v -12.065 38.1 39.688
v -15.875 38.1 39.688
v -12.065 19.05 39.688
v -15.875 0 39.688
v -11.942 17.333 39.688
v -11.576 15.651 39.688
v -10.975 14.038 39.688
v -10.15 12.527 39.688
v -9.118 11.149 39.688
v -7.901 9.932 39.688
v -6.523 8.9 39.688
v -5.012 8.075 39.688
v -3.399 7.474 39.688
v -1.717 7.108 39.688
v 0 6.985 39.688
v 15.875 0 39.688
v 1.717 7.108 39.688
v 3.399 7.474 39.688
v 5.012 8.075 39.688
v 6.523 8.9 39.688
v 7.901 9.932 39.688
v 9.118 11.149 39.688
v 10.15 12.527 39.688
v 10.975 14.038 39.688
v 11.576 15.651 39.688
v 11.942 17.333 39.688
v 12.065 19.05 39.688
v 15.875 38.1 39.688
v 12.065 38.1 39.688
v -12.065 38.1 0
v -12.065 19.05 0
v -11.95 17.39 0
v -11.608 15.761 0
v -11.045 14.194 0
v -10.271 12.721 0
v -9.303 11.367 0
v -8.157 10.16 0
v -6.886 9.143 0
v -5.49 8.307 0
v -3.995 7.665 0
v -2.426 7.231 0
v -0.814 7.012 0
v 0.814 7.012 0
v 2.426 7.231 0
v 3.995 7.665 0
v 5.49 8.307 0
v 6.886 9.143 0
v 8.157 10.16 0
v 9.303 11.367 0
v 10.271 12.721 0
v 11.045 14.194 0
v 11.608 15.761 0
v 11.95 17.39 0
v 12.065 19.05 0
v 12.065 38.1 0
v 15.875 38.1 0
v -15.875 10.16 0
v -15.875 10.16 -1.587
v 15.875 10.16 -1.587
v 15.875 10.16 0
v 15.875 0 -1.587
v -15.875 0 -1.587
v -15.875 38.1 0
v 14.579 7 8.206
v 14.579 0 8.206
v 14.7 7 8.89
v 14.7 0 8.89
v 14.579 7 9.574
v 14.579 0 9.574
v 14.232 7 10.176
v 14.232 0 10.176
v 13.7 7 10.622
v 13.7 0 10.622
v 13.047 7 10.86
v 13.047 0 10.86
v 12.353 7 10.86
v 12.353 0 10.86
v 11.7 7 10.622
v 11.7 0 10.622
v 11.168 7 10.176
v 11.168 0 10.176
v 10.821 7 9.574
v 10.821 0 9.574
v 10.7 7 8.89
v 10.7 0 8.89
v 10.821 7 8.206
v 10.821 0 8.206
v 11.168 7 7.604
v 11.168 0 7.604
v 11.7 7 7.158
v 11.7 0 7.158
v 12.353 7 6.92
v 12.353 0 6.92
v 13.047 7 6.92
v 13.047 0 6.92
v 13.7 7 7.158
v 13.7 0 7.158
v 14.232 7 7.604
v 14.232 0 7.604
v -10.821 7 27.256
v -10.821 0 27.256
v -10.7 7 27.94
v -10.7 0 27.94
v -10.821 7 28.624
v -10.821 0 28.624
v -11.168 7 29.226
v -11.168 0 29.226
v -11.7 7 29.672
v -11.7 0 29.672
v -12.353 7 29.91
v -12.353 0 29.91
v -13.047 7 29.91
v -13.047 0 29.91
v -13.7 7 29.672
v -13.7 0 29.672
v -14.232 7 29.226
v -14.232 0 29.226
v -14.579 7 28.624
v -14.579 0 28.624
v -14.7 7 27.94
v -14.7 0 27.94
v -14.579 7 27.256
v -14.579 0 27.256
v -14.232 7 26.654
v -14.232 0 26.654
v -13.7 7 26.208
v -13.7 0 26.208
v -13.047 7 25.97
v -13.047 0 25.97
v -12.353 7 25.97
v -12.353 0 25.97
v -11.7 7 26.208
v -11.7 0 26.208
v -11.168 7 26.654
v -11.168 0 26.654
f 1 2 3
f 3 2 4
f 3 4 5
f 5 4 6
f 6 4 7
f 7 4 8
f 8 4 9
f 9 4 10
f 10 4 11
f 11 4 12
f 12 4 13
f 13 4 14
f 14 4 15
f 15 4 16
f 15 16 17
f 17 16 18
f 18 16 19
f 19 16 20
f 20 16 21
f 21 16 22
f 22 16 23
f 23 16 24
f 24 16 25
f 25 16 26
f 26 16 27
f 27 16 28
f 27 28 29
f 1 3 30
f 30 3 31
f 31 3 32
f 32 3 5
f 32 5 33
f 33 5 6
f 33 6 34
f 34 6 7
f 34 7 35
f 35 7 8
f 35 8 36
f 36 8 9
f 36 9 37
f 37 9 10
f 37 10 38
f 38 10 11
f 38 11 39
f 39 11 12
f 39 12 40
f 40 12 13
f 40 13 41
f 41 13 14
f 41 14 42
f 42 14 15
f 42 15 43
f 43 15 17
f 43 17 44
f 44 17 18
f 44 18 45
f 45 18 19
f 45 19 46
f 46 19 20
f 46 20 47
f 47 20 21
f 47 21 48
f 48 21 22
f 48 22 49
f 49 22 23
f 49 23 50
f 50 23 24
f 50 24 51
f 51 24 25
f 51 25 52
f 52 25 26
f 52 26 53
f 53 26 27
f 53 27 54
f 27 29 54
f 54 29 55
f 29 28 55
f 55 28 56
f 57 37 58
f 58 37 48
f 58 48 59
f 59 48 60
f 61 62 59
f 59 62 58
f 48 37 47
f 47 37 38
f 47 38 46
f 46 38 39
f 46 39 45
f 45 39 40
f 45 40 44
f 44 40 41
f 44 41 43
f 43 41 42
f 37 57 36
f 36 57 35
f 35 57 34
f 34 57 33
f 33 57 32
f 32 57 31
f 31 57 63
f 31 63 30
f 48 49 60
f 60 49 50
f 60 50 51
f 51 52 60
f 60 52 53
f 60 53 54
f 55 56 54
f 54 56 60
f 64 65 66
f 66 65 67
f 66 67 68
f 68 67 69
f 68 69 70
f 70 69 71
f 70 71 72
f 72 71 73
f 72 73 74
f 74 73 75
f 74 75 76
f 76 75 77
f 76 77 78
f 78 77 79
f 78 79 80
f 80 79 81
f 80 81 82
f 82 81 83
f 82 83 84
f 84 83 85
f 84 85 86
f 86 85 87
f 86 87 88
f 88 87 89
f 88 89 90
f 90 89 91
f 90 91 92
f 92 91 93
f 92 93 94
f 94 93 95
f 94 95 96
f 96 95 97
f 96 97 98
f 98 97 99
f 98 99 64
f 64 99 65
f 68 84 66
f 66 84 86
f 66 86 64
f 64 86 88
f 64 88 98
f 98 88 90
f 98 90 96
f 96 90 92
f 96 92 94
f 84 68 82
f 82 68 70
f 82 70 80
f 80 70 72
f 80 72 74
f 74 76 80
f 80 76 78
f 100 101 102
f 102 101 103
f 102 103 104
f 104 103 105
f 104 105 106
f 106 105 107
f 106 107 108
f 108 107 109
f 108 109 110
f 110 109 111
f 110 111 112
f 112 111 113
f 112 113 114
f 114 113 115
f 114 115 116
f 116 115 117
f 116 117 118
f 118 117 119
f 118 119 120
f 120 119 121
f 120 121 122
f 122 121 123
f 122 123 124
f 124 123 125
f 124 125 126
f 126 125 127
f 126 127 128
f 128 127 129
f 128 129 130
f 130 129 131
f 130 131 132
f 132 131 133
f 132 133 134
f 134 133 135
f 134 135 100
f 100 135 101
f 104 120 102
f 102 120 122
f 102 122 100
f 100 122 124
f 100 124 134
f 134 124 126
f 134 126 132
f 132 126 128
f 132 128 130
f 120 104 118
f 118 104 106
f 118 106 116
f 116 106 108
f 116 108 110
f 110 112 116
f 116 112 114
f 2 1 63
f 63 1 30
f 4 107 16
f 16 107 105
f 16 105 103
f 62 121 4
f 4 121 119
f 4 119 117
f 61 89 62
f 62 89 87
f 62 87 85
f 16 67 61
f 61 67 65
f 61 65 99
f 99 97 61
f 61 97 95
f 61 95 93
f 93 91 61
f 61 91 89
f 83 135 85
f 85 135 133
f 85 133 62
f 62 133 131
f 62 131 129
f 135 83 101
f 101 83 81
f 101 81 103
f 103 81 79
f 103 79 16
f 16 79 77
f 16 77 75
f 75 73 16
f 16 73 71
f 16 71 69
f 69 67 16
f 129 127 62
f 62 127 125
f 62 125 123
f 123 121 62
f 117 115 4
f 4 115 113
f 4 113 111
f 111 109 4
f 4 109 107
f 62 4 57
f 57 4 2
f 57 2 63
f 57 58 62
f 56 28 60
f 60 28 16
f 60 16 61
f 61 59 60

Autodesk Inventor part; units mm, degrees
ref_plane "YZ Plane" through (0, 0, 0) normal (1, 0, 0) x (0, 1, 0)
ref_plane "XZ Plane" through (0, 0, 0) normal (0, 1, 0) x (-1, 0, 0)
ref_plane "XY Plane" through (0, 0, 0) normal (0, 0, 1) x (1, 0, 0)
sketch "Sketch1" plane through (0, 0, 0) normal (0, 0, 1) x (1, 0, 0)
  line L0 (-15.875, 0) -> (15.875, 0)
  line L1 (15.875, 0) -> (15.875, 38.1)
  line L2 (15.875, 38.1) -> (-15.875, 38.1)
  line L3 (-15.875, 38.1) -> (-15.875, 0)
  point P0 (0, 0)
  dimension "d2" = 31.75
  dimension "d3" = 38.1
  dimension "d4" = 15.875
  dimension "d5" = 0
extrude "Extrusion1" add sketch "Sketch1" along normal blind 139.7
sketch "Sketch2" plane through (0, 0, 139.7) normal (0, 0, 1) x (1, 0, 0)
  arc A0 (-12.065, 19.05) -> (12.065, 19.05) centre (0, 19.05) ccw
  line L0 (-15.875, 0) -> (15.875, 0) projected
  line L1 (12.065, 19.05) -> (12.065, 38.1)
  line L2 (15.875, 38.1) -> (-15.875, 38.1) projected
  line L3 (-12.065, 19.05) -> (-12.065, 38.1)
  point P0 (0, 0)
  dimension "d8" = 19.05
  dimension "d9" = 24.13
extrude "Extrusion2" cut sketch "Sketch2" against normal through all
sketch "Sketch3" plane through (-15.875, 0, 0) normal (0, -1, 0) x (1, 0, 0)
  circle A0 centre (28.575, 8.89) radius 2
  circle A1 centre (3.175, 130.81) radius 2
  line L0 (15.875, 0) -> (15.875, 139.7) construction
  line L1 (0, 139.7) -> (31.75, 139.7) construction
  line L2 (0, 0) -> (31.75, 0) construction
  line L3 (31.75, 139.7) -> (0, 139.7) construction
  circle A2 centre (3.175, 27.94) radius 2
  dimension "d12" = 4
  dimension "d13" = 4
  dimension "d14" = 12.7
  dimension "d15" = 8.89
  dimension "d16" = 12.7
  dimension "d17" = 8.89
  dimension "d28" = 4
  dimension "d30" = 12.7
  dimension "d31" = 27.94
extrude "Heat Set Inserts" cut sketch "Sketch3" against normal blind 7
sketch "Sketch4" plane through (0, 0, 139.7) normal (0, 0, 1) x (1, 0, 0)
  line L0 (-15.875, 0) -> (15.875, 0) projected
  line L1 (15.875, 0) -> (15.875, 38.1) projected
  line L2 (-15.875, 0) -> (15.875, 0)
  line L3 (15.875, 0) -> (15.875, 19.05)
  line L4 (15.875, 19.05) -> (-15.875, 19.05)
  line L5 (-15.875, 19.05) -> (-15.875, 0)
  point P0 (0, 0)
  dimension "d20" = 19.05
extrude "Back Wall" add sketch "Sketch4" along normal blind 1.5875
sketch "Sketch5" plane through (0, 0, 0) normal (0, 0, -1) x (-1, 0, 0)
  line L0 (15.875, 0) -> (-15.875, 0) projected
  line L1 (15.875, 19.05) -> (15.875, 0) projected
  line L2 (-15.875, 0) -> (15.875, 0)
  line L3 (15.875, 0) -> (15.875, 10.16)
  line L4 (15.875, 10.16) -> (-15.875, 10.16)
  line L5 (-15.875, 10.16) -> (-15.875, 0)
  point P0 (0, 0)
  dimension "d23" = 10.16
extrude "Extrusion5" add sketch "Sketch5" along normal blind 1.5875
sketch "Sketch6" plane through (0, 0, 141.2875) normal (0, 0, 1) x (1, 0, 0)
  line L0 (-12.065, 38.1) -> (-15.875, 38.1) projected
  line L1 (-15.875, 0) -> (15.875, 0) projected
  line L2 (-15.875, 38.1) -> (15.875, 38.1)
  line L3 (15.875, 38.1) -> (15.875, 0)
  line L4 (15.875, 0) -> (-15.875, 0)
  line L5 (-15.875, 0) -> (-15.875, 38.1)
  point P0 (0, 0)
extrude "Extrusion6" cut sketch "Sketch6" against normal blind 101.6
equation "\"d4\" = 0.5 * d2"
equation "\"d12\" = m3_heat_set_insert"
equation "\"d13\" = m3_heat_set_insert"
equation "\"d28\" = d29"
equation "\"d18\" = m3_heat_set_depth"
equation "\"m3_heat_set_insert\" = 4"
equation "\"m3_clearance\" = 3.4"
equation "\"m3_heat_set_depth\" = 7"
equation "\"robot_diameter\" = 354"
equation "\"hardboard_thickness\" = 5"
equation "\"d29\" = 4"
properties part number "NiMH_Holder_Front"
